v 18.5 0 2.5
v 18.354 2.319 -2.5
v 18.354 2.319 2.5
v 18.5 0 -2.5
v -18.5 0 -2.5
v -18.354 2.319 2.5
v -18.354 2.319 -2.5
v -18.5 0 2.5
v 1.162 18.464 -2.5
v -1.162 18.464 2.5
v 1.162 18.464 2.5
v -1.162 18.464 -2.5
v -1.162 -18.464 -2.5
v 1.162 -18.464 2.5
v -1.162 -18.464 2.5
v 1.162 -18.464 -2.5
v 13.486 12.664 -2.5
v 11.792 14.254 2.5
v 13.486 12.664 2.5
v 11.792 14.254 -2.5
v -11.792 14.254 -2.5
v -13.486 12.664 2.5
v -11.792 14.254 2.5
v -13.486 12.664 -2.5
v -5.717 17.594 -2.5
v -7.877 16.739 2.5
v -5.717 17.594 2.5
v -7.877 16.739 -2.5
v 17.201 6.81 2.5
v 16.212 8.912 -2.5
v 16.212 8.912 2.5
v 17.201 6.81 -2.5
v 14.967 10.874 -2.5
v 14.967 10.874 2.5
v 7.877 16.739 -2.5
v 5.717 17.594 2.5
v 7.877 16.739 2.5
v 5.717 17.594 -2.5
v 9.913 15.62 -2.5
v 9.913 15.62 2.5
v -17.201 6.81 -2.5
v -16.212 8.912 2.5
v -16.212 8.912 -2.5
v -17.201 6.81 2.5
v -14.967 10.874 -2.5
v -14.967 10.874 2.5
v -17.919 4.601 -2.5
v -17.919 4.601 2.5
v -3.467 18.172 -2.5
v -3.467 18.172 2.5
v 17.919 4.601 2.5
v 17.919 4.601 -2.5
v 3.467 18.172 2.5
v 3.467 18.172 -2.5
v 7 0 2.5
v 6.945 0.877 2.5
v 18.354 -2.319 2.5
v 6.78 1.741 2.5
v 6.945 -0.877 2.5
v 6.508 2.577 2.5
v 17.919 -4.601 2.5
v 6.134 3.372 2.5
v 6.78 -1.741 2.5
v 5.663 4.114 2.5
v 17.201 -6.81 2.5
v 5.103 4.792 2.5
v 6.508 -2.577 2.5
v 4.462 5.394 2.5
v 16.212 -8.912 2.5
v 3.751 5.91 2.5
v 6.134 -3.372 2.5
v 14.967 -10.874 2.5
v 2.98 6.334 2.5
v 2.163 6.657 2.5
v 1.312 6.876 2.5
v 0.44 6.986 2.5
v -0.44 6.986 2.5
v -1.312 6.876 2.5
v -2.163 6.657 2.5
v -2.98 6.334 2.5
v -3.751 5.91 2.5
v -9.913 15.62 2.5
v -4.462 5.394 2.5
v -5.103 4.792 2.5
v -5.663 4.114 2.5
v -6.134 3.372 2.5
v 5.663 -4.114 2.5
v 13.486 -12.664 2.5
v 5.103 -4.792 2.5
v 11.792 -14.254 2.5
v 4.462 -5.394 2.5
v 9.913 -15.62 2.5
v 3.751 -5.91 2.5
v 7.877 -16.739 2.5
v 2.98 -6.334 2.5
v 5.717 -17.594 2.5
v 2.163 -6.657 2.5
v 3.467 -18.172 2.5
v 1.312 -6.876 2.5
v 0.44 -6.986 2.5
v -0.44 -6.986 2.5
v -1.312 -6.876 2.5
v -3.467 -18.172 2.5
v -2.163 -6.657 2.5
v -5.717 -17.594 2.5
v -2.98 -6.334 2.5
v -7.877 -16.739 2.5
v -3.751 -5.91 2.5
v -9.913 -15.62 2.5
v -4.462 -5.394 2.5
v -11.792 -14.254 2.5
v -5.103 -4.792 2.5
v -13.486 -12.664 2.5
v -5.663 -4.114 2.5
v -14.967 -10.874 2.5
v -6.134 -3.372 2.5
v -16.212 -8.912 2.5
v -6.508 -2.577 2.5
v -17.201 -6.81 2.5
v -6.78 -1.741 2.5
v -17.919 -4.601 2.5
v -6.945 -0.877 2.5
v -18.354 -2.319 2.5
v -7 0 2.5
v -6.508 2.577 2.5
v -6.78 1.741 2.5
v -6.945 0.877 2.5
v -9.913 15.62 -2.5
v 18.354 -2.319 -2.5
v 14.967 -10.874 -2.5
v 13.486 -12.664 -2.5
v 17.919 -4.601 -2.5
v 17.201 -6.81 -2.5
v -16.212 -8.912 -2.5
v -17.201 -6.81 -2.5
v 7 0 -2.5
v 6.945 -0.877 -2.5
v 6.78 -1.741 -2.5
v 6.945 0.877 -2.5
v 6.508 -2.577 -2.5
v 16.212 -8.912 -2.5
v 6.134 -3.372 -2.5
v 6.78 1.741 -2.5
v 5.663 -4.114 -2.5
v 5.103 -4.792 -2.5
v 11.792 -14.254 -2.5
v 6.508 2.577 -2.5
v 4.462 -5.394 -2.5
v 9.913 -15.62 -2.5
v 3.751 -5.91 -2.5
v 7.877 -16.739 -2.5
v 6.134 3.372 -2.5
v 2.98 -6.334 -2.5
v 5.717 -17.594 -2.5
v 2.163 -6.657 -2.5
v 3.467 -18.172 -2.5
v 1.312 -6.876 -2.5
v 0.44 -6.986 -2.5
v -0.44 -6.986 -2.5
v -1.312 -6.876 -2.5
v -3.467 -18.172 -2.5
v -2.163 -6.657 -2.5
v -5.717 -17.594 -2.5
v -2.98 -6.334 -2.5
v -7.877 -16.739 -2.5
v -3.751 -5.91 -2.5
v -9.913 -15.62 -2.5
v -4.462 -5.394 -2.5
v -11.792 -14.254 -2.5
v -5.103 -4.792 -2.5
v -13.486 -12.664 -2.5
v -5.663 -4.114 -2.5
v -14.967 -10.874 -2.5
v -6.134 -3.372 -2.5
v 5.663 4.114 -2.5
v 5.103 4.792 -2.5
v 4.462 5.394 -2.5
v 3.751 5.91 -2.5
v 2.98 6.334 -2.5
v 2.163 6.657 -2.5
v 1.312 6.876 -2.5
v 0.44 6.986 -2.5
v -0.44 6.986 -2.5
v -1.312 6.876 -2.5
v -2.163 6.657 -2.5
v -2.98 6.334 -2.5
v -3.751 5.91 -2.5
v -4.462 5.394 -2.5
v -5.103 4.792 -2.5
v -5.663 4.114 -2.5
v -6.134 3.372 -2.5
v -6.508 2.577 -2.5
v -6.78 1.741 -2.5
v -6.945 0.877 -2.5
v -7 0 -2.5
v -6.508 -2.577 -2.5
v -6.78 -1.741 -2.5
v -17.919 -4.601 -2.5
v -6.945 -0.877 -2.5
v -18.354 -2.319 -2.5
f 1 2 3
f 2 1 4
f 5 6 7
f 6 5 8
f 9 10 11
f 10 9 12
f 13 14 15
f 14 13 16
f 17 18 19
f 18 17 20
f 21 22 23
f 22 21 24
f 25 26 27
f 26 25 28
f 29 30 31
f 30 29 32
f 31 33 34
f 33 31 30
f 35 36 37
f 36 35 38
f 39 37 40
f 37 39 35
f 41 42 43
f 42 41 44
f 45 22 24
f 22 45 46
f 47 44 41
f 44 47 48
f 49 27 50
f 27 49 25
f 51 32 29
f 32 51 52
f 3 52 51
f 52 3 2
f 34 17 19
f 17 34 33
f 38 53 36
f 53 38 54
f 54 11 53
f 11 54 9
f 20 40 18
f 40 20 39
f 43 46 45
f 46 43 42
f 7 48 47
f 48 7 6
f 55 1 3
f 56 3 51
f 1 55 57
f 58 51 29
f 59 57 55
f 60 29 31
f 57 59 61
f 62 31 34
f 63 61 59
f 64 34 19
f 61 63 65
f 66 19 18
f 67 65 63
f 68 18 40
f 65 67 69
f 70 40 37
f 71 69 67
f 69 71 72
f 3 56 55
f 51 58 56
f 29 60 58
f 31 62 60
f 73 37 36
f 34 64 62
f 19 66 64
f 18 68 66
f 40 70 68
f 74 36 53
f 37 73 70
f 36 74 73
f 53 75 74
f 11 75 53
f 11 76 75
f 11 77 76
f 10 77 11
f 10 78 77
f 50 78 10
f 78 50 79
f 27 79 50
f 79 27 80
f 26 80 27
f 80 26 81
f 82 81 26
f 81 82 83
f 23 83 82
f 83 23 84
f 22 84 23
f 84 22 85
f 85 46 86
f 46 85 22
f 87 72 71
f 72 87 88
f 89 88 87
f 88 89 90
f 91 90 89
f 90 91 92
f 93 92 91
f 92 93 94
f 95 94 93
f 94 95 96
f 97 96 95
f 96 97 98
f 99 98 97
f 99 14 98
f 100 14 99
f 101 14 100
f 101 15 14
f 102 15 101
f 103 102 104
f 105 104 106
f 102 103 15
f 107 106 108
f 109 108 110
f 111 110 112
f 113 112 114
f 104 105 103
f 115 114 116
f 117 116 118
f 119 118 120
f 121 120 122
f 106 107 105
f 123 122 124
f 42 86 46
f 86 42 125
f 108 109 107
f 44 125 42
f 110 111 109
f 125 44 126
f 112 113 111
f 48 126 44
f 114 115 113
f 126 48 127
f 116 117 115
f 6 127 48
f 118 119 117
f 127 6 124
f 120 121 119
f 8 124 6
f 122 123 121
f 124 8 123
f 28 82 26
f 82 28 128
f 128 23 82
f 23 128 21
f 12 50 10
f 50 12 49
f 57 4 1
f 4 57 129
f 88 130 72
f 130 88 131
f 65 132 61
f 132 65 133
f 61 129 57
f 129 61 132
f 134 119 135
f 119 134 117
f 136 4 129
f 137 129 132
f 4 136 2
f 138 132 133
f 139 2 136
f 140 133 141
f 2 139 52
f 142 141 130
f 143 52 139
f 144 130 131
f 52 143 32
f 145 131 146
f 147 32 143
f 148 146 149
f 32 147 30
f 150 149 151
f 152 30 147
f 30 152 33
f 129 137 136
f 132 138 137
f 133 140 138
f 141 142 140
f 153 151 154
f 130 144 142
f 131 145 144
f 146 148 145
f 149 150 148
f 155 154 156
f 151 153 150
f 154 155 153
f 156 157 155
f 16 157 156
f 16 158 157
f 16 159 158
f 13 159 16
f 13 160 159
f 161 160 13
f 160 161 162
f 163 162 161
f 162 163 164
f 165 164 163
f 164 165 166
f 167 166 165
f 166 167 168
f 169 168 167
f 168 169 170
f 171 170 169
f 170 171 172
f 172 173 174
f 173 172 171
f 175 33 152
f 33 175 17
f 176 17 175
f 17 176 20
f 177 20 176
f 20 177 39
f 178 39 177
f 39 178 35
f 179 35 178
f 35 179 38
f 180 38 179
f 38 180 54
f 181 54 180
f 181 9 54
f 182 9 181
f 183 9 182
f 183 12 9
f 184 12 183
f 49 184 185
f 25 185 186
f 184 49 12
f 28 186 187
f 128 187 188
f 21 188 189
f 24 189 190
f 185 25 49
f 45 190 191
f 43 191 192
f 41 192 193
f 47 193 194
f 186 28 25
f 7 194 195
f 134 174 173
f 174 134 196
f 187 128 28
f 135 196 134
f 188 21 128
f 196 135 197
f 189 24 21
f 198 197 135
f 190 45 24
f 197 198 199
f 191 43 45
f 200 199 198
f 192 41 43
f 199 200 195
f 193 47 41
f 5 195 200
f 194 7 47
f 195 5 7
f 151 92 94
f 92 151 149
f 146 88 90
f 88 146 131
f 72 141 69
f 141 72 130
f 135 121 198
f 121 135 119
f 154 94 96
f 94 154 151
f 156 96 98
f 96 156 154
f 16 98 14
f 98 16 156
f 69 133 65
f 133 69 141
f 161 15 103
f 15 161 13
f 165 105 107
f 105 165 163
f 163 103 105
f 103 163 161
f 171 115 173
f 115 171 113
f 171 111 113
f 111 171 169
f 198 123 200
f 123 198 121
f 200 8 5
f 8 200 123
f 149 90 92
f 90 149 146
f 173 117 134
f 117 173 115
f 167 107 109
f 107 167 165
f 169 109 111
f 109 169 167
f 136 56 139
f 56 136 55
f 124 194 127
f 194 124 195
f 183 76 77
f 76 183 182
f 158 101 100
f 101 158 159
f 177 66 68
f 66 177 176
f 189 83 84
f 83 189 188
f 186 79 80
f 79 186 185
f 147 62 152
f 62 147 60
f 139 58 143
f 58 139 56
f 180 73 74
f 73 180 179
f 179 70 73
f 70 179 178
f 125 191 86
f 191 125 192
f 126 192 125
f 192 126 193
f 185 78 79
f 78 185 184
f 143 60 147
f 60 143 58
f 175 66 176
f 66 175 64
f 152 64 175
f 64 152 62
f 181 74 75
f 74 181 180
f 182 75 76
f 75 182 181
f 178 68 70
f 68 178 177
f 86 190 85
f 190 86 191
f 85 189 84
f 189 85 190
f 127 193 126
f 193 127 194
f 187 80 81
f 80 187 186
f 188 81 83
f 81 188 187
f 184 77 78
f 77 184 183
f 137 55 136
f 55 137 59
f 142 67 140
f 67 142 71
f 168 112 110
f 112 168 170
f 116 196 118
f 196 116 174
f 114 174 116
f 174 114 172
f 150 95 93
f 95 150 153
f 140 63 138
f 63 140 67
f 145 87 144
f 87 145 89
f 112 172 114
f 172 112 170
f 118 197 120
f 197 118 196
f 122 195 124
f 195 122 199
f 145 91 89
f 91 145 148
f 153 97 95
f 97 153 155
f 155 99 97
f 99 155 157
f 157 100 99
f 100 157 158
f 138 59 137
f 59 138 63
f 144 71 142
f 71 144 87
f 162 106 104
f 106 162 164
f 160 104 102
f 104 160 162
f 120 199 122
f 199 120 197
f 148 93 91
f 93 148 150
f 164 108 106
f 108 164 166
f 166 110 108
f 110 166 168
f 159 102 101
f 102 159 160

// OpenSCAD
$fn = 50;


difference() {
	union() {
		translate(v = [0, 0, -2.5000000000]) {
			cylinder(h = 5, r = 18.5000000000);
		}
	}
	union() {
		translate(v = [0, 0, -100.0000000000]) {
			cylinder(h = 200, r = 7);
		}
	}
}
